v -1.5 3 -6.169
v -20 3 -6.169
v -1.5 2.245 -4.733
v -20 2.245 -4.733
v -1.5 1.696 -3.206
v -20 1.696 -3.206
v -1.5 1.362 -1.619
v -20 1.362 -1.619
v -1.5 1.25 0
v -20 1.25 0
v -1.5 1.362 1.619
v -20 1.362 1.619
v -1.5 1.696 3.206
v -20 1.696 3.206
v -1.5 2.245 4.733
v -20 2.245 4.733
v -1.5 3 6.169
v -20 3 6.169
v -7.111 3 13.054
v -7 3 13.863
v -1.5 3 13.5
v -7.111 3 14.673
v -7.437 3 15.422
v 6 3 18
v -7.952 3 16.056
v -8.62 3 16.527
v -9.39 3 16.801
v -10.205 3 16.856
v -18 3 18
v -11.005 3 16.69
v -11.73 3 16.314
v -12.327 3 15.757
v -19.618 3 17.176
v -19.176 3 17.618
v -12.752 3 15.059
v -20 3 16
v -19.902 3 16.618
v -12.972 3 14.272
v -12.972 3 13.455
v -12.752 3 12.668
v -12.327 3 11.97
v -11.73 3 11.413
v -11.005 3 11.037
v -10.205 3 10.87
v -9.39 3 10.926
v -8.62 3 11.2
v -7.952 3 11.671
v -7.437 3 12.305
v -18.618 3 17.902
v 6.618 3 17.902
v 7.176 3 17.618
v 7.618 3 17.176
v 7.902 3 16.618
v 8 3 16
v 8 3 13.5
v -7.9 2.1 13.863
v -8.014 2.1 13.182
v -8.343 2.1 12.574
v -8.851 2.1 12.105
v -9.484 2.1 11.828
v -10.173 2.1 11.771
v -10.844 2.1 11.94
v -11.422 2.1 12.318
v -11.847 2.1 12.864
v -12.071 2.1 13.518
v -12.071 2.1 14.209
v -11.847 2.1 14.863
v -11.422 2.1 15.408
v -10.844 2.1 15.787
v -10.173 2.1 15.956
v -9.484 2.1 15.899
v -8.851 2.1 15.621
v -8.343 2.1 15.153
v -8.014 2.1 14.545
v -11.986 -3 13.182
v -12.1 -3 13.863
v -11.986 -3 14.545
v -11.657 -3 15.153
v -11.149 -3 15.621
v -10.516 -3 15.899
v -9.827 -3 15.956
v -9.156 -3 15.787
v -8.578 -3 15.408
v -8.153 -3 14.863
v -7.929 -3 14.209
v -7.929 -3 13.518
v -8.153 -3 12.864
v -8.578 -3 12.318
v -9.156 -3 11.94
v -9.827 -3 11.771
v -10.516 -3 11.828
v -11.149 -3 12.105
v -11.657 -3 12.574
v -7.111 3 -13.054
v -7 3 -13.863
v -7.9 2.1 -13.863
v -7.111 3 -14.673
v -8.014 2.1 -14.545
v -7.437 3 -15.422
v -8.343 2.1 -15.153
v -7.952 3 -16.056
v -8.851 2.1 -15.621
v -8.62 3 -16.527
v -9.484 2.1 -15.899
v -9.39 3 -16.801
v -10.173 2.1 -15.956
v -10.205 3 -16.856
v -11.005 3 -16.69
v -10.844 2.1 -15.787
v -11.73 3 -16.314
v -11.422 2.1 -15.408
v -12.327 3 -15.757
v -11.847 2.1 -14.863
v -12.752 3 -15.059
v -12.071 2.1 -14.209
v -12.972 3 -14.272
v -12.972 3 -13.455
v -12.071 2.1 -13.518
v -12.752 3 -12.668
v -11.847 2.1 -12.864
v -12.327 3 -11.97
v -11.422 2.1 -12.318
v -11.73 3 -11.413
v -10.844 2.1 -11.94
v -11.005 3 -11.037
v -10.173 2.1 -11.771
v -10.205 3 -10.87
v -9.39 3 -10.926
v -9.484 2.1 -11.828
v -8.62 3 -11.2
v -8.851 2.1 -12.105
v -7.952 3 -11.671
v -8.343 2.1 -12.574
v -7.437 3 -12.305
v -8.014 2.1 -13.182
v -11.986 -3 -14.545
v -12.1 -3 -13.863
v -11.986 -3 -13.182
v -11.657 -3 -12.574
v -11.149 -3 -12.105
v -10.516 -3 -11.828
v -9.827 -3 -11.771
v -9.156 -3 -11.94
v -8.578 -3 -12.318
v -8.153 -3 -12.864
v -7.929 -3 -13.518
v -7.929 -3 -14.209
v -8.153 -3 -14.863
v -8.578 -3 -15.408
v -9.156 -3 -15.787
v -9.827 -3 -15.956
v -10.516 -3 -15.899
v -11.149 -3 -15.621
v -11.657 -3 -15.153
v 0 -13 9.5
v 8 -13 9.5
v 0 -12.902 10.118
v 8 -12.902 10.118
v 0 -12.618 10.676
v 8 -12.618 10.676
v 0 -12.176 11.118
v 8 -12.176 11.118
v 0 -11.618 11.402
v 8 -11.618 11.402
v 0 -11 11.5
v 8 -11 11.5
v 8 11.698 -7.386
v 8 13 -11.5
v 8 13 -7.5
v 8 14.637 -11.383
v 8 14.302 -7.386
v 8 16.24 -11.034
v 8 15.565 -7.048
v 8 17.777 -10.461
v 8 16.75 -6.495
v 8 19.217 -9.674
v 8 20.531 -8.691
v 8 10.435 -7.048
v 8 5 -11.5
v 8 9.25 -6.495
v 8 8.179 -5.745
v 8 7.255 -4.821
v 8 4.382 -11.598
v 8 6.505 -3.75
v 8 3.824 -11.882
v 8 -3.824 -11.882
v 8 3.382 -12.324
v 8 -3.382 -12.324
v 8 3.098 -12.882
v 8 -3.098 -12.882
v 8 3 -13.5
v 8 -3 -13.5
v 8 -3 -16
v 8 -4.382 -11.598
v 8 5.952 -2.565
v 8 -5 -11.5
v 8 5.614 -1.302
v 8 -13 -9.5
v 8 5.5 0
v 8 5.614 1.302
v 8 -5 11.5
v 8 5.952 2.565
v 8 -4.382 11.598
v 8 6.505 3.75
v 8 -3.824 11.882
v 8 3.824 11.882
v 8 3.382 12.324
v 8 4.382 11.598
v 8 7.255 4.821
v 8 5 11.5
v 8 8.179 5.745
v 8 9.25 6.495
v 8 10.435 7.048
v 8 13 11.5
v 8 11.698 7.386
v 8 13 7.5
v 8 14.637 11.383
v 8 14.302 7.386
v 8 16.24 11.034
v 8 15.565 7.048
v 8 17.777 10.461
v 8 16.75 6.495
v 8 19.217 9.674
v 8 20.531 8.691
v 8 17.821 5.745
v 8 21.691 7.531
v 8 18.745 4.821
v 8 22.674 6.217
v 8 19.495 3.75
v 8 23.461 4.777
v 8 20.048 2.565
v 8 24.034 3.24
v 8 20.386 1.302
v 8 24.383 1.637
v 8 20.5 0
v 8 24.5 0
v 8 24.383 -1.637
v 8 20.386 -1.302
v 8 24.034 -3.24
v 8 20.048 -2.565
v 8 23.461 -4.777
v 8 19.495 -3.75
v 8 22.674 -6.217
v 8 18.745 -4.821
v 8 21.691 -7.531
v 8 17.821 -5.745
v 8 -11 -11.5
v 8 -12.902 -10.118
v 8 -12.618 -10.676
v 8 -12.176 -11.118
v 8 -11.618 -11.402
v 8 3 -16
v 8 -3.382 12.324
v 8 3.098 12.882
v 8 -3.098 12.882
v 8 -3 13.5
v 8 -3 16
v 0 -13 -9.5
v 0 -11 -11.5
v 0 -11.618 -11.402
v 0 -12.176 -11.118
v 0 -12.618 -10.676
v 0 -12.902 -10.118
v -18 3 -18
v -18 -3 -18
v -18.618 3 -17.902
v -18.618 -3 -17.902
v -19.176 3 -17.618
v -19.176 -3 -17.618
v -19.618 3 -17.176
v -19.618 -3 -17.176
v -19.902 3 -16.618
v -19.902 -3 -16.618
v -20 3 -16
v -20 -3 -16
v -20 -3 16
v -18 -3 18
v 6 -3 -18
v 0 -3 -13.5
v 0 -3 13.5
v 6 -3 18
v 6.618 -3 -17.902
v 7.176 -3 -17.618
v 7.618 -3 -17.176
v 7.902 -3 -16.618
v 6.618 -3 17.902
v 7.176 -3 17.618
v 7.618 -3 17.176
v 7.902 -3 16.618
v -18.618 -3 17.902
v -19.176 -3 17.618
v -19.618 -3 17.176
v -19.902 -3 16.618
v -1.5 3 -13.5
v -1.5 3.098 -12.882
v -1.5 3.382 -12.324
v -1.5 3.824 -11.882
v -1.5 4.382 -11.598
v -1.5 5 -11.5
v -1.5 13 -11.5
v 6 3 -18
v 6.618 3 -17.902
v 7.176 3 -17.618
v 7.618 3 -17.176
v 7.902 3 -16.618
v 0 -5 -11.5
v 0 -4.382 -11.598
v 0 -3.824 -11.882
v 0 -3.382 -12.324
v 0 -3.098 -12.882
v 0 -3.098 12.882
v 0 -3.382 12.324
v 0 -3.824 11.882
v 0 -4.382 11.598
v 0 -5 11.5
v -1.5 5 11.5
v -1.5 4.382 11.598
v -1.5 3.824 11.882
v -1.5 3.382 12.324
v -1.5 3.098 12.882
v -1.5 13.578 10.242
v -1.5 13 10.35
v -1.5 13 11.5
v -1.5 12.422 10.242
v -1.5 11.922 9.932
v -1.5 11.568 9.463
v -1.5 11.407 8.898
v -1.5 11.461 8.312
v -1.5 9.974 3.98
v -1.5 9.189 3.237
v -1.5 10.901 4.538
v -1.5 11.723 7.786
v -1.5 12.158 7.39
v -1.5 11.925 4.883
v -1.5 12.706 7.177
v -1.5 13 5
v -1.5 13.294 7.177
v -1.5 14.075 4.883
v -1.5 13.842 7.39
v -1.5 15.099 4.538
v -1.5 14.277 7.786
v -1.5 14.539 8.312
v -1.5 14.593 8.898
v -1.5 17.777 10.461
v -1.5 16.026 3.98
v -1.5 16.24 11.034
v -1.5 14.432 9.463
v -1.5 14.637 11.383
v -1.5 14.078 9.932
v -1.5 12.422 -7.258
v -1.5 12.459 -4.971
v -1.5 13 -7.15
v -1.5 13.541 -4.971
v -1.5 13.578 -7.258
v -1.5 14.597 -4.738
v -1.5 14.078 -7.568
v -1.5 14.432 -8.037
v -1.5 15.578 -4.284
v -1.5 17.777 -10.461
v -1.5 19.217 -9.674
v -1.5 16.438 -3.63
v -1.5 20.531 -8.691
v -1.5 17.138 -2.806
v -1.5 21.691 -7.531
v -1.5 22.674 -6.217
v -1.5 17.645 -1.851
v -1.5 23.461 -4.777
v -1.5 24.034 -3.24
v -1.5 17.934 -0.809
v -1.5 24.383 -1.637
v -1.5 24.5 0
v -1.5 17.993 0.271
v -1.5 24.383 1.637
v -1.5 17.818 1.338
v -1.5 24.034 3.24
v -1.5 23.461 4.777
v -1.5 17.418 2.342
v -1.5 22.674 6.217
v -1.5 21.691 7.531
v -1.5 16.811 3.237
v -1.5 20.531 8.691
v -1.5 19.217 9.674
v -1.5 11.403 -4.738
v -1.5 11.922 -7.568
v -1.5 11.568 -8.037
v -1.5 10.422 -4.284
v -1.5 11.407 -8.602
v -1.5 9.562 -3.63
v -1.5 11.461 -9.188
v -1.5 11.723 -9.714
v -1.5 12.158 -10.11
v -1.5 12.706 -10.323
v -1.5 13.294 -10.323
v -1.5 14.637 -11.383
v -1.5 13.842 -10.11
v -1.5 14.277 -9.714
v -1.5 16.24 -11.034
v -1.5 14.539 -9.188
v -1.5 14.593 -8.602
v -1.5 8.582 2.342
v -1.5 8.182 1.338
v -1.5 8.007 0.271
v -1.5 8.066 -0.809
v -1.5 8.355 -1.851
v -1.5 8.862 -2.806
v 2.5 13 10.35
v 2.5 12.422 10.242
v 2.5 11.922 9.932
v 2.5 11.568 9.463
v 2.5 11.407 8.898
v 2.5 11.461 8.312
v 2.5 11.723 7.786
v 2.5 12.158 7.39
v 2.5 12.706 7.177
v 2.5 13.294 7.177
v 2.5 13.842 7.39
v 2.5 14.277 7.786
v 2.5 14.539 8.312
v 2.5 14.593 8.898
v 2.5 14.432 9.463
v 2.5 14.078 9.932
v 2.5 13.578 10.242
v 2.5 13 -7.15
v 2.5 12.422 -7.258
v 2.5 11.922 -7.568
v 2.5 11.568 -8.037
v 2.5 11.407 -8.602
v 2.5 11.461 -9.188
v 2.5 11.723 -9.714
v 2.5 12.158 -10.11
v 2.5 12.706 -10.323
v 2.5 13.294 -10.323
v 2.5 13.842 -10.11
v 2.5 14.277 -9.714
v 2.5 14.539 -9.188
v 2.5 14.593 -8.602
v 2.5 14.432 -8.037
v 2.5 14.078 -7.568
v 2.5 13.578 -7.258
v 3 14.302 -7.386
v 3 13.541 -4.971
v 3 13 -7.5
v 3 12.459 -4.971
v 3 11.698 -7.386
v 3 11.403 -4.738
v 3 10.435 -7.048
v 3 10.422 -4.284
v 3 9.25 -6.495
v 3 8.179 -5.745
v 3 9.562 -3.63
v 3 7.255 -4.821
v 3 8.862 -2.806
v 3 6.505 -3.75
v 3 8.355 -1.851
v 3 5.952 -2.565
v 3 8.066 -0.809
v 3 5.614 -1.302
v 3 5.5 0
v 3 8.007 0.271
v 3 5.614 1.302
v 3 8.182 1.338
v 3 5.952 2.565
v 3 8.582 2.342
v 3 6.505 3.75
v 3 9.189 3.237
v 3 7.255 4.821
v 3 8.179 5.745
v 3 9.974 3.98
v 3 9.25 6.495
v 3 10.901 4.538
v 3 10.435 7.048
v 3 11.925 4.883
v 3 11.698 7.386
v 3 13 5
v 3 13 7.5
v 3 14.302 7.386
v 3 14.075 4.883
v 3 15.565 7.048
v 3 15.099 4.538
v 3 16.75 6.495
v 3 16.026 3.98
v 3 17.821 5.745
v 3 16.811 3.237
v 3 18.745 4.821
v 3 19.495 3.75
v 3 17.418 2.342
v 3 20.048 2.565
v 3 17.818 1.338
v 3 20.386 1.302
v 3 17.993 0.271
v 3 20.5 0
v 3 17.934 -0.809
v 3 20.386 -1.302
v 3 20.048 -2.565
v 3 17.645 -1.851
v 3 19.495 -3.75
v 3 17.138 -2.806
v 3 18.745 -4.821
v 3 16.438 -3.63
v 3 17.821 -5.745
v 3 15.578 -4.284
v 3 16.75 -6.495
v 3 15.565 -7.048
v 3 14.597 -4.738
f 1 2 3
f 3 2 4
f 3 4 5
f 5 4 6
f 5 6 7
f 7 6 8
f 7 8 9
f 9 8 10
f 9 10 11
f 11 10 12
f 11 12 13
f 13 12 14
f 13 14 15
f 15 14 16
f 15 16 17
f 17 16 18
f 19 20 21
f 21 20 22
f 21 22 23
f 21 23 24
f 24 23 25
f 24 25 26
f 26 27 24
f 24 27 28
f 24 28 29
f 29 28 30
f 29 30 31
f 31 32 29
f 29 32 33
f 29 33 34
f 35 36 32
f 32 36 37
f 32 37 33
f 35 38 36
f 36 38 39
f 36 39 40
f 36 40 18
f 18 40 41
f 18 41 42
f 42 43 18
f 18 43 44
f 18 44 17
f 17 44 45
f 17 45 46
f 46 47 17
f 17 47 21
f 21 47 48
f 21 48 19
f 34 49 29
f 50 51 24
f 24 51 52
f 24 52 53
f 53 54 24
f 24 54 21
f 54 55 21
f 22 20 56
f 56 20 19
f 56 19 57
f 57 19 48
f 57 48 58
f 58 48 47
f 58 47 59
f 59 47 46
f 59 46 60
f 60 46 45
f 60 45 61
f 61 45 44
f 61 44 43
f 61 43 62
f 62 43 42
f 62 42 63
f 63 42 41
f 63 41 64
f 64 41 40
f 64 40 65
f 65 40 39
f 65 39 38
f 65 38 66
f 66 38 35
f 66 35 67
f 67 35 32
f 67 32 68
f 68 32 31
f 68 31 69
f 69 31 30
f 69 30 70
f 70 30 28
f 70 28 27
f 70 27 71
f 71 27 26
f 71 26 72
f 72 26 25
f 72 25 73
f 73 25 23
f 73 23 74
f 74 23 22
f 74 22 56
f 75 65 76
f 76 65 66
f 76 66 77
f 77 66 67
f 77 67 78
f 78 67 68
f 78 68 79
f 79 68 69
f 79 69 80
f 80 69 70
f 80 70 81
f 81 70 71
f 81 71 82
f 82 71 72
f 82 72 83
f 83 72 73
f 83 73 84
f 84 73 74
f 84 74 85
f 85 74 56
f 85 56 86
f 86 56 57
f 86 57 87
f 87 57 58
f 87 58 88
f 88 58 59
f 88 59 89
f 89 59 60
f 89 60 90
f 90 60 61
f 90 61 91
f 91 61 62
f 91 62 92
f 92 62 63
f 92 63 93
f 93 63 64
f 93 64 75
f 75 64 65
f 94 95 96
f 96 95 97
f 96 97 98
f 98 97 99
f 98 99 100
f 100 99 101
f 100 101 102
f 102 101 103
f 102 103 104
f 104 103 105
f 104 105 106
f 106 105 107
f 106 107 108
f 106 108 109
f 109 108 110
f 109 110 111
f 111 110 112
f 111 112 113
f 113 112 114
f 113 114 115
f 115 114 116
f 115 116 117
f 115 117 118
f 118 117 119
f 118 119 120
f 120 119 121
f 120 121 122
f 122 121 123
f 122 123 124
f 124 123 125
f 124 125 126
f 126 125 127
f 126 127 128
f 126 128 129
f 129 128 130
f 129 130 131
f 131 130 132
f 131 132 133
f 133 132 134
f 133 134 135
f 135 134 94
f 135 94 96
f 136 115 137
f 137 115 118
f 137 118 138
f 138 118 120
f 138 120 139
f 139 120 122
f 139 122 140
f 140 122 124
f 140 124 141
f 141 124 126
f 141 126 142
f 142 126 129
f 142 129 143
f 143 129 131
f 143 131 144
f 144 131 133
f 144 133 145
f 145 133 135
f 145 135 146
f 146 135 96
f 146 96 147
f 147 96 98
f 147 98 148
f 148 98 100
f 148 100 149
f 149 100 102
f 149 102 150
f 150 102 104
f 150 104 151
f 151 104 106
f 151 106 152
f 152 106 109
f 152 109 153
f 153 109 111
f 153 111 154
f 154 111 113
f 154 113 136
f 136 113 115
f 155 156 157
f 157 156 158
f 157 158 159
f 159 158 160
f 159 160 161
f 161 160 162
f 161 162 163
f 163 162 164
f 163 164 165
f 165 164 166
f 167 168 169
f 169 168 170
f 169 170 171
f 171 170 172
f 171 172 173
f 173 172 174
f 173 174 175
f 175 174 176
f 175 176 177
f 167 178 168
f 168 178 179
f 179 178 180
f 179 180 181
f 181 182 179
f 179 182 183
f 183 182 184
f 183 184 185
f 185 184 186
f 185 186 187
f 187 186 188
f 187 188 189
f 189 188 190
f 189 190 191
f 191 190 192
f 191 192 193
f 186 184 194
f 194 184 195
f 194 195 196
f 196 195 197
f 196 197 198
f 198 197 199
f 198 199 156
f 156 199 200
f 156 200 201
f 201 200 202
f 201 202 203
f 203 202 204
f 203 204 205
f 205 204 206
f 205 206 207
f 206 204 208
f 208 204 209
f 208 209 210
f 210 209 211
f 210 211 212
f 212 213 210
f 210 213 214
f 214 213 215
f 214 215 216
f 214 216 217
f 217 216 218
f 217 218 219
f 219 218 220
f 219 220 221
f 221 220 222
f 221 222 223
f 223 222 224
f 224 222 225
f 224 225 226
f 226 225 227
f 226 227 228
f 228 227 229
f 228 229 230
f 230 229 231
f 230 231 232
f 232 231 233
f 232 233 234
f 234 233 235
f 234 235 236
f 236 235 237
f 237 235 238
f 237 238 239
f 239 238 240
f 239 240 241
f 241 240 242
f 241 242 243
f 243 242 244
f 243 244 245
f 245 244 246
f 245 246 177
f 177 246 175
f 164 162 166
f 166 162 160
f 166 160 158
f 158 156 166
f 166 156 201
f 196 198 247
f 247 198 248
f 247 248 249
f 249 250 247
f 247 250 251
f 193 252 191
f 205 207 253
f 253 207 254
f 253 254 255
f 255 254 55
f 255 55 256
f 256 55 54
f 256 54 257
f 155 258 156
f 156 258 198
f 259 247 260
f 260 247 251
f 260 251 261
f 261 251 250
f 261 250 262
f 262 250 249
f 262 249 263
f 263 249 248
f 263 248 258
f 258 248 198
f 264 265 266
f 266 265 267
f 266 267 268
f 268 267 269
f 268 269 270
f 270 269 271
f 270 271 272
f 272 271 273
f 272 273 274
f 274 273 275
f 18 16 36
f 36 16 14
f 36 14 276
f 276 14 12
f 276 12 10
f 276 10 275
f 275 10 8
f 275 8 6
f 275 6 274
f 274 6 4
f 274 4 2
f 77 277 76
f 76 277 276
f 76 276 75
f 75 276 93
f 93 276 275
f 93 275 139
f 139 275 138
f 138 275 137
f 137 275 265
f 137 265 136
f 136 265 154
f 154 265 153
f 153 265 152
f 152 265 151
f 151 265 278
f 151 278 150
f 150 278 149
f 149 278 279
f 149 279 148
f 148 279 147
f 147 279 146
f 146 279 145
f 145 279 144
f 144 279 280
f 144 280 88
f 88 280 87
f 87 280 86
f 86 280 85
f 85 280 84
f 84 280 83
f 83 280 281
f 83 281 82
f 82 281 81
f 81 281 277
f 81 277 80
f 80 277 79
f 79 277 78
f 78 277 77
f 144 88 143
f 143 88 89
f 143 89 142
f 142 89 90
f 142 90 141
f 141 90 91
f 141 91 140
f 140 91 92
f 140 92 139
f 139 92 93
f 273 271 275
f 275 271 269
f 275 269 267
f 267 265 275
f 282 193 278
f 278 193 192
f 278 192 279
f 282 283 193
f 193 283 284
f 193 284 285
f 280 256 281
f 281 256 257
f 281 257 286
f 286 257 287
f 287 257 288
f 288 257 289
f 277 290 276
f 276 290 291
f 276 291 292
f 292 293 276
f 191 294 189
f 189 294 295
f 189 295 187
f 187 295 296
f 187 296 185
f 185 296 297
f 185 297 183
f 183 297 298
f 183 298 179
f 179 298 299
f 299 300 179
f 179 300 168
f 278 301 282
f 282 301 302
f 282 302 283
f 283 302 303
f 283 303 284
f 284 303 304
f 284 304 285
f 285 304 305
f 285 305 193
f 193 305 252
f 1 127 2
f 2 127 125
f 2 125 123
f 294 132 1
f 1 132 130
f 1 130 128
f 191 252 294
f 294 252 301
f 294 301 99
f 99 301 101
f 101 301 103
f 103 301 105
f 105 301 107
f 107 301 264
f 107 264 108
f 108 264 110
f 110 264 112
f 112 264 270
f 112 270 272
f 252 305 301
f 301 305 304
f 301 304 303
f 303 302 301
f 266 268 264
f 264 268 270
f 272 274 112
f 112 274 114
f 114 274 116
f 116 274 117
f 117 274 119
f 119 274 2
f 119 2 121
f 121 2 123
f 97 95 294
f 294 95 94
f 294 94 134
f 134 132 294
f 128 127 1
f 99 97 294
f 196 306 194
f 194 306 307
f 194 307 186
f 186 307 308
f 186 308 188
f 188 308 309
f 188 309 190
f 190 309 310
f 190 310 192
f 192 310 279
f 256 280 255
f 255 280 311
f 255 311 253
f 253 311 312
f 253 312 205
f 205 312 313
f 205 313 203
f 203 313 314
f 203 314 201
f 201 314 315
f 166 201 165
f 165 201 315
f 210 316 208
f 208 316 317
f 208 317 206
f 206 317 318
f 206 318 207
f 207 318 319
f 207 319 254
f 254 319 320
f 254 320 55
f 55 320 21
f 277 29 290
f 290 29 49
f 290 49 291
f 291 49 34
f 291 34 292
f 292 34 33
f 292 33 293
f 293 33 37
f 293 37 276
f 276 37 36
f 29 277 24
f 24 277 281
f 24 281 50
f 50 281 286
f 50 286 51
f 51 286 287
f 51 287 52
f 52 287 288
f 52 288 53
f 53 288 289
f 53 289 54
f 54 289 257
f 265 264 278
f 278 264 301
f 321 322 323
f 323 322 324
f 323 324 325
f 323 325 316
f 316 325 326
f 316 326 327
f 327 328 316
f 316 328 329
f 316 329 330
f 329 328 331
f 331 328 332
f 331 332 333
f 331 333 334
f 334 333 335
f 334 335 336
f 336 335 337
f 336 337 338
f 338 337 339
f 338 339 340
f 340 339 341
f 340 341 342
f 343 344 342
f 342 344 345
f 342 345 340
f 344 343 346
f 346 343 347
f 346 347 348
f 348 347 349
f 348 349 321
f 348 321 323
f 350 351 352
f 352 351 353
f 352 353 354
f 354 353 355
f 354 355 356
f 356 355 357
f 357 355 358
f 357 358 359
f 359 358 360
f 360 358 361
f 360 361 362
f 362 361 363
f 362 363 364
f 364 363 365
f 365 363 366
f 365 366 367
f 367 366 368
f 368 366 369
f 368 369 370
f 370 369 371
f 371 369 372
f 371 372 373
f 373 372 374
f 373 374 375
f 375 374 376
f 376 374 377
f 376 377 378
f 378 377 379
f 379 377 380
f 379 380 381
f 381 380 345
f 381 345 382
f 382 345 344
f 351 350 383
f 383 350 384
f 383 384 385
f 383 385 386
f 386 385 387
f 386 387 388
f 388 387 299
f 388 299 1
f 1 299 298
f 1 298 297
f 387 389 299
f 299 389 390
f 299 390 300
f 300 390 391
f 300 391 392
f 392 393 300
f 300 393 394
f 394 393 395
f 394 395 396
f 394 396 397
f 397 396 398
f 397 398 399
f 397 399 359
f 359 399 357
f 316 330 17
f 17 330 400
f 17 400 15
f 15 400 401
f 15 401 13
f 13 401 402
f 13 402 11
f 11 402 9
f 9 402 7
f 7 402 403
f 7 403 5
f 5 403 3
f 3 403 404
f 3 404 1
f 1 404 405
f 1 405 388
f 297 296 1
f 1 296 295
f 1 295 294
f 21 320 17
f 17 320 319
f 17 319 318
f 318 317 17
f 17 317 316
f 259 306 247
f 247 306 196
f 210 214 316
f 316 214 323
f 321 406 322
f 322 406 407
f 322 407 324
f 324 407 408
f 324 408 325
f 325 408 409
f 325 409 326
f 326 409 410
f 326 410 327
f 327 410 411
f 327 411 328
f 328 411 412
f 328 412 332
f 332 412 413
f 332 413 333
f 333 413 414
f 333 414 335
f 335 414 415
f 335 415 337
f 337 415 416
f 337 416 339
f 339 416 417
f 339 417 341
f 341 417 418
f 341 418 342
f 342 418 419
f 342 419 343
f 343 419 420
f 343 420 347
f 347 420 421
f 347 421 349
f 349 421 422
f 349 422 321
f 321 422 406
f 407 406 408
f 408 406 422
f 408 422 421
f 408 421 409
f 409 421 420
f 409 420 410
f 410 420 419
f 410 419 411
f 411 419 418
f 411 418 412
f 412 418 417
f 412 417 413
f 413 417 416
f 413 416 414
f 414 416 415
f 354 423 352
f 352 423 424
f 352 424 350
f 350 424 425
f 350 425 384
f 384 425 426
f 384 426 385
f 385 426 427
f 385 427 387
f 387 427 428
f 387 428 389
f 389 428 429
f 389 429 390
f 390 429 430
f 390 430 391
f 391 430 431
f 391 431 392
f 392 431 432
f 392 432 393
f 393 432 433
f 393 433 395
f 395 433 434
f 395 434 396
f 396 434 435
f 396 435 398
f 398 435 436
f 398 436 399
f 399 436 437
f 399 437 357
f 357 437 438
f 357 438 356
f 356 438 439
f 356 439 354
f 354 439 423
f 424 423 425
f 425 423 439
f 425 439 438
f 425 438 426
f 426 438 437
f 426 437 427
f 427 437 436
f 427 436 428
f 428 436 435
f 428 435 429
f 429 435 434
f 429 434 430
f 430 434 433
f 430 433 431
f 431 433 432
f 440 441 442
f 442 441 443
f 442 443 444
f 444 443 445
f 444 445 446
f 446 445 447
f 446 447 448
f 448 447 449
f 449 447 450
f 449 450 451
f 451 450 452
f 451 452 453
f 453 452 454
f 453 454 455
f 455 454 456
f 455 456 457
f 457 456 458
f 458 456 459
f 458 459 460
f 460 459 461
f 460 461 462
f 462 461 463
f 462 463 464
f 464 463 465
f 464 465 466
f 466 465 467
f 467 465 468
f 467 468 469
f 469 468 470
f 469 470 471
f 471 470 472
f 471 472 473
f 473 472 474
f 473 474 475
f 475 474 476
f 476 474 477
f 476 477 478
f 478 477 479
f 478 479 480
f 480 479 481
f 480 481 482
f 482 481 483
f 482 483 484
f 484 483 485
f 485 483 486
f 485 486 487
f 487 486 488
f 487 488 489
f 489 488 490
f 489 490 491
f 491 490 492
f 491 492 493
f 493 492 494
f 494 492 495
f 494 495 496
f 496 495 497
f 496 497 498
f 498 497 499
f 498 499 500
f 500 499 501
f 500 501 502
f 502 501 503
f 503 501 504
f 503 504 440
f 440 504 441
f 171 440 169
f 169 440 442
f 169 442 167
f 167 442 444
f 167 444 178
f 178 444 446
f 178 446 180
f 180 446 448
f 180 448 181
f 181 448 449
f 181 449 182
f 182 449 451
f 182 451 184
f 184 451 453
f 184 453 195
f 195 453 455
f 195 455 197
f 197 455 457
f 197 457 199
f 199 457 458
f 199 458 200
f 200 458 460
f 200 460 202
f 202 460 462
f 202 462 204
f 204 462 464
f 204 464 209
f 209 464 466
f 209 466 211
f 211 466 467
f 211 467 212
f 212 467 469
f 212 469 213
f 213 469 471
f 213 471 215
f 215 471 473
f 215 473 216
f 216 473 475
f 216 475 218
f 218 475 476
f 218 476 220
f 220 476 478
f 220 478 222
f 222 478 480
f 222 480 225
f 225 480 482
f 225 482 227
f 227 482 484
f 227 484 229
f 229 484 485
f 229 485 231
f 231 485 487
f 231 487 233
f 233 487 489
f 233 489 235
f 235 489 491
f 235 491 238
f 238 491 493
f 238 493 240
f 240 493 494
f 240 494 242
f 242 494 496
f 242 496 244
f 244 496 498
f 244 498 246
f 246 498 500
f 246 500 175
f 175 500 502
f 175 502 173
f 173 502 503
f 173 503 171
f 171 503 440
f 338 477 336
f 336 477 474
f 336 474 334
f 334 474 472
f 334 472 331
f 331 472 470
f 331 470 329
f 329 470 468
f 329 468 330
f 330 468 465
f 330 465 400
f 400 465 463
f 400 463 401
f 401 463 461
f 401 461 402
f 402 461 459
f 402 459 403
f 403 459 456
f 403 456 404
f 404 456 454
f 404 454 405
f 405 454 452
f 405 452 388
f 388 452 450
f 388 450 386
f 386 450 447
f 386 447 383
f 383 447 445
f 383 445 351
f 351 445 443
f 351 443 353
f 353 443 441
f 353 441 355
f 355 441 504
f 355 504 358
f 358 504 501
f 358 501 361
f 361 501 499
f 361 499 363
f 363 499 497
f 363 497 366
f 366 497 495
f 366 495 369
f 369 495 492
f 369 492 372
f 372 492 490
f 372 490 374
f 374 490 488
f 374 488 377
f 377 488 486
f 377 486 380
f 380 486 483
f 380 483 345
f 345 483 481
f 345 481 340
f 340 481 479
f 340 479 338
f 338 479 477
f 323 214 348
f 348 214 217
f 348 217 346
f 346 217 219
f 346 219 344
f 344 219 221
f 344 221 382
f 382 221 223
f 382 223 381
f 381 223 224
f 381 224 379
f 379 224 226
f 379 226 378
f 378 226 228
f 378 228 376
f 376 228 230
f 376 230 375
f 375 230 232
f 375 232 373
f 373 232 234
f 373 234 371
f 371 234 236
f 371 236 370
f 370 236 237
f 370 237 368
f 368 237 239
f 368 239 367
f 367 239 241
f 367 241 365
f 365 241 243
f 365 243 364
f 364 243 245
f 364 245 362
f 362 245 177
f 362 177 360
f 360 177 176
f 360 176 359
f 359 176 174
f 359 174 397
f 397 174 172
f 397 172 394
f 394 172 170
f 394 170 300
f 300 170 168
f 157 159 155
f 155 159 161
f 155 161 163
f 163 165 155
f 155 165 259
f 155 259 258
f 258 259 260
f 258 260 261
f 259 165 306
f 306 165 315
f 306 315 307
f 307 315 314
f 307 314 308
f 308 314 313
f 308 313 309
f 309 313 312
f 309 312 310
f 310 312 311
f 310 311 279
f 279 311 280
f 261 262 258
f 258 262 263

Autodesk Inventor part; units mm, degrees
ref_plane "YZ Plane" through (0, 0, 0) normal (1, 0, 0) x (0, 1, 0)
ref_plane "XZ Plane" through (0, 0, 0) normal (0, 1, 0) x (-1, 0, 0)
ref_plane "XY Plane" through (0, 0, 0) normal (0, 0, 1) x (1, 0, 0)
sketch "Esquisse1" plane through (0, 0, 0) normal (1, 0, 0) x (0, 1, 0)
  arc A0 (13, -11.5) -> (13, 11.5) centre (13, 0) ccw
  line L0 (-13, 11.5) -> (13, 11.5)
  line L1 (13, 11.5) -> (13, -11.5) construction
  line L2 (13, -11.5) -> (-13, -11.5)
  line L3 (-13, -11.5) -> (-13, 11.5)
  line L4 (-13, 11.5) -> (13, -11.5) construction
  line L5 (13, 11.5) -> (-13, -11.5) construction
  line L6 (-3, 11.5) -> (-3, -11.5)
  circle A1 centre (13, 0) radius 11.5 construction
  point P0 (0, 0)
  point P1 (0, 0)
  dimension "d1" = 23
  dimension "d2" = 16
  dimension "d3" = 10
extrude "Extrusion1" add sketch "Esquisse1" along normal blind 8
extrude "Extrusion2" add sketch "Esquisse1" against normal blind 1.5 contours L2 L6 L0 A0
sketch "Esquisse3" plane through (8, 0, 0) normal (1, 0, 0) x (0, 0, -1)
  arc A0 (11.5, 13) -> (-11.5, 13) centre (0, 13) ccw projected
  point P0 (0, 0)
  point P1 (0, 13)
hole "Perçage1" at (8, 13, 0) direction (-1, 0, 0) diameter 10 end through all counterbore diameter 15 counterbore depth 5
sketch "Esquisse4" plane through (-1.5, 0, 0) normal (-1, 0, 0) x (0, 0, 1)
  circle A0 centre (0, 13) radius 5 projected
  circle A1 centre (0, 13) radius 8.75 construction
  circle A2 centre (0, 13) radius 7.5 projected
  line L0 (8.75, 13) -> (-8.75, 13)
  point P0 (0, 0)
  dimension "d15" = 17.5
hole "Perçage2" at (-1.5, 13, -8.75) at (-1.5, 13, 8.75) direction (1, 0, 0) diameter 3.2 depth 4
sketch "Esquisse5" plane through (8, 0, 0) normal (1, 0, 0) x (0, 0, -1)
  line L0 (18, 3) -> (-18, 3)
  line L1 (-18, 3) -> (-18, -3)
  line L2 (-18, -3) -> (18, -3)
  line L3 (18, -3) -> (18, 3)
  line L4 (18, 3) -> (-18, -3) construction
  line L5 (-18, 3) -> (18, -3) construction
  line L6 (11.5, -13) -> (11.5, 13) construction
  line L7 (11.5, -3) -> (-11.5, -3) projected
  point P0 (0, 0)
  dimension "d23" = 6.5
extrude "Extrusion3" add sketch "Esquisse5" against normal blind 28
fillet "Congé1" radius 2 10 edges at (8, 0, 18) (-20, 0, 18) (3.25, 3, 11.5) (4, -3, 11.5) (4, -3, -11.5) (8, 0, -18) (3.25, 3, -11.5) (-20, 0, -18) (4, -13, -11.5) (4, -13, 11.5)
sketch "Esquisse6" plane through (8, 3, 16) normal (0, 1, 0) x (1, 0, 0)
  line L0 (-18, 29.8634) -> (-18, 2.1366) construction
  line L1 (-9.5, 11) -> (-9.5, 21) projected
  line L2 (-5, 11) -> (-5, 21) projected
  line L3 (-11.5, 29.5) -> (-11.5, 2.5) projected
  line L4 (-11.5, 16) -> (-28, 16) construction
  line L5 (-28, 32) -> (-28, 0) projected
  point P0 (-8, 16)
  point P1 (-18, 16)
  dimension "d27" = 10
hole "Perçage3" at (-10, 3, -13.8634) at (-10, 3, 13.8634) direction (0, -1, 0) diameter 4.2 end through all countersink diameter 6 countersink angle 90
sketch "Esquisse7" plane through (-1.5, 0, 0) normal (-1, 0, 0) x (0, 0, 1)
  circle A0 centre (0, 13) radius 11.75
  arc A1 (11.5, 13) -> (-11.5, 13) centre (0, 13) ccw construction
  point P0 (0, 0)
  dimension "d36" = 23.5
extrude "Extrusion4" cut sketch "Esquisse7" along normal through all
properties part number "support_codeur"
